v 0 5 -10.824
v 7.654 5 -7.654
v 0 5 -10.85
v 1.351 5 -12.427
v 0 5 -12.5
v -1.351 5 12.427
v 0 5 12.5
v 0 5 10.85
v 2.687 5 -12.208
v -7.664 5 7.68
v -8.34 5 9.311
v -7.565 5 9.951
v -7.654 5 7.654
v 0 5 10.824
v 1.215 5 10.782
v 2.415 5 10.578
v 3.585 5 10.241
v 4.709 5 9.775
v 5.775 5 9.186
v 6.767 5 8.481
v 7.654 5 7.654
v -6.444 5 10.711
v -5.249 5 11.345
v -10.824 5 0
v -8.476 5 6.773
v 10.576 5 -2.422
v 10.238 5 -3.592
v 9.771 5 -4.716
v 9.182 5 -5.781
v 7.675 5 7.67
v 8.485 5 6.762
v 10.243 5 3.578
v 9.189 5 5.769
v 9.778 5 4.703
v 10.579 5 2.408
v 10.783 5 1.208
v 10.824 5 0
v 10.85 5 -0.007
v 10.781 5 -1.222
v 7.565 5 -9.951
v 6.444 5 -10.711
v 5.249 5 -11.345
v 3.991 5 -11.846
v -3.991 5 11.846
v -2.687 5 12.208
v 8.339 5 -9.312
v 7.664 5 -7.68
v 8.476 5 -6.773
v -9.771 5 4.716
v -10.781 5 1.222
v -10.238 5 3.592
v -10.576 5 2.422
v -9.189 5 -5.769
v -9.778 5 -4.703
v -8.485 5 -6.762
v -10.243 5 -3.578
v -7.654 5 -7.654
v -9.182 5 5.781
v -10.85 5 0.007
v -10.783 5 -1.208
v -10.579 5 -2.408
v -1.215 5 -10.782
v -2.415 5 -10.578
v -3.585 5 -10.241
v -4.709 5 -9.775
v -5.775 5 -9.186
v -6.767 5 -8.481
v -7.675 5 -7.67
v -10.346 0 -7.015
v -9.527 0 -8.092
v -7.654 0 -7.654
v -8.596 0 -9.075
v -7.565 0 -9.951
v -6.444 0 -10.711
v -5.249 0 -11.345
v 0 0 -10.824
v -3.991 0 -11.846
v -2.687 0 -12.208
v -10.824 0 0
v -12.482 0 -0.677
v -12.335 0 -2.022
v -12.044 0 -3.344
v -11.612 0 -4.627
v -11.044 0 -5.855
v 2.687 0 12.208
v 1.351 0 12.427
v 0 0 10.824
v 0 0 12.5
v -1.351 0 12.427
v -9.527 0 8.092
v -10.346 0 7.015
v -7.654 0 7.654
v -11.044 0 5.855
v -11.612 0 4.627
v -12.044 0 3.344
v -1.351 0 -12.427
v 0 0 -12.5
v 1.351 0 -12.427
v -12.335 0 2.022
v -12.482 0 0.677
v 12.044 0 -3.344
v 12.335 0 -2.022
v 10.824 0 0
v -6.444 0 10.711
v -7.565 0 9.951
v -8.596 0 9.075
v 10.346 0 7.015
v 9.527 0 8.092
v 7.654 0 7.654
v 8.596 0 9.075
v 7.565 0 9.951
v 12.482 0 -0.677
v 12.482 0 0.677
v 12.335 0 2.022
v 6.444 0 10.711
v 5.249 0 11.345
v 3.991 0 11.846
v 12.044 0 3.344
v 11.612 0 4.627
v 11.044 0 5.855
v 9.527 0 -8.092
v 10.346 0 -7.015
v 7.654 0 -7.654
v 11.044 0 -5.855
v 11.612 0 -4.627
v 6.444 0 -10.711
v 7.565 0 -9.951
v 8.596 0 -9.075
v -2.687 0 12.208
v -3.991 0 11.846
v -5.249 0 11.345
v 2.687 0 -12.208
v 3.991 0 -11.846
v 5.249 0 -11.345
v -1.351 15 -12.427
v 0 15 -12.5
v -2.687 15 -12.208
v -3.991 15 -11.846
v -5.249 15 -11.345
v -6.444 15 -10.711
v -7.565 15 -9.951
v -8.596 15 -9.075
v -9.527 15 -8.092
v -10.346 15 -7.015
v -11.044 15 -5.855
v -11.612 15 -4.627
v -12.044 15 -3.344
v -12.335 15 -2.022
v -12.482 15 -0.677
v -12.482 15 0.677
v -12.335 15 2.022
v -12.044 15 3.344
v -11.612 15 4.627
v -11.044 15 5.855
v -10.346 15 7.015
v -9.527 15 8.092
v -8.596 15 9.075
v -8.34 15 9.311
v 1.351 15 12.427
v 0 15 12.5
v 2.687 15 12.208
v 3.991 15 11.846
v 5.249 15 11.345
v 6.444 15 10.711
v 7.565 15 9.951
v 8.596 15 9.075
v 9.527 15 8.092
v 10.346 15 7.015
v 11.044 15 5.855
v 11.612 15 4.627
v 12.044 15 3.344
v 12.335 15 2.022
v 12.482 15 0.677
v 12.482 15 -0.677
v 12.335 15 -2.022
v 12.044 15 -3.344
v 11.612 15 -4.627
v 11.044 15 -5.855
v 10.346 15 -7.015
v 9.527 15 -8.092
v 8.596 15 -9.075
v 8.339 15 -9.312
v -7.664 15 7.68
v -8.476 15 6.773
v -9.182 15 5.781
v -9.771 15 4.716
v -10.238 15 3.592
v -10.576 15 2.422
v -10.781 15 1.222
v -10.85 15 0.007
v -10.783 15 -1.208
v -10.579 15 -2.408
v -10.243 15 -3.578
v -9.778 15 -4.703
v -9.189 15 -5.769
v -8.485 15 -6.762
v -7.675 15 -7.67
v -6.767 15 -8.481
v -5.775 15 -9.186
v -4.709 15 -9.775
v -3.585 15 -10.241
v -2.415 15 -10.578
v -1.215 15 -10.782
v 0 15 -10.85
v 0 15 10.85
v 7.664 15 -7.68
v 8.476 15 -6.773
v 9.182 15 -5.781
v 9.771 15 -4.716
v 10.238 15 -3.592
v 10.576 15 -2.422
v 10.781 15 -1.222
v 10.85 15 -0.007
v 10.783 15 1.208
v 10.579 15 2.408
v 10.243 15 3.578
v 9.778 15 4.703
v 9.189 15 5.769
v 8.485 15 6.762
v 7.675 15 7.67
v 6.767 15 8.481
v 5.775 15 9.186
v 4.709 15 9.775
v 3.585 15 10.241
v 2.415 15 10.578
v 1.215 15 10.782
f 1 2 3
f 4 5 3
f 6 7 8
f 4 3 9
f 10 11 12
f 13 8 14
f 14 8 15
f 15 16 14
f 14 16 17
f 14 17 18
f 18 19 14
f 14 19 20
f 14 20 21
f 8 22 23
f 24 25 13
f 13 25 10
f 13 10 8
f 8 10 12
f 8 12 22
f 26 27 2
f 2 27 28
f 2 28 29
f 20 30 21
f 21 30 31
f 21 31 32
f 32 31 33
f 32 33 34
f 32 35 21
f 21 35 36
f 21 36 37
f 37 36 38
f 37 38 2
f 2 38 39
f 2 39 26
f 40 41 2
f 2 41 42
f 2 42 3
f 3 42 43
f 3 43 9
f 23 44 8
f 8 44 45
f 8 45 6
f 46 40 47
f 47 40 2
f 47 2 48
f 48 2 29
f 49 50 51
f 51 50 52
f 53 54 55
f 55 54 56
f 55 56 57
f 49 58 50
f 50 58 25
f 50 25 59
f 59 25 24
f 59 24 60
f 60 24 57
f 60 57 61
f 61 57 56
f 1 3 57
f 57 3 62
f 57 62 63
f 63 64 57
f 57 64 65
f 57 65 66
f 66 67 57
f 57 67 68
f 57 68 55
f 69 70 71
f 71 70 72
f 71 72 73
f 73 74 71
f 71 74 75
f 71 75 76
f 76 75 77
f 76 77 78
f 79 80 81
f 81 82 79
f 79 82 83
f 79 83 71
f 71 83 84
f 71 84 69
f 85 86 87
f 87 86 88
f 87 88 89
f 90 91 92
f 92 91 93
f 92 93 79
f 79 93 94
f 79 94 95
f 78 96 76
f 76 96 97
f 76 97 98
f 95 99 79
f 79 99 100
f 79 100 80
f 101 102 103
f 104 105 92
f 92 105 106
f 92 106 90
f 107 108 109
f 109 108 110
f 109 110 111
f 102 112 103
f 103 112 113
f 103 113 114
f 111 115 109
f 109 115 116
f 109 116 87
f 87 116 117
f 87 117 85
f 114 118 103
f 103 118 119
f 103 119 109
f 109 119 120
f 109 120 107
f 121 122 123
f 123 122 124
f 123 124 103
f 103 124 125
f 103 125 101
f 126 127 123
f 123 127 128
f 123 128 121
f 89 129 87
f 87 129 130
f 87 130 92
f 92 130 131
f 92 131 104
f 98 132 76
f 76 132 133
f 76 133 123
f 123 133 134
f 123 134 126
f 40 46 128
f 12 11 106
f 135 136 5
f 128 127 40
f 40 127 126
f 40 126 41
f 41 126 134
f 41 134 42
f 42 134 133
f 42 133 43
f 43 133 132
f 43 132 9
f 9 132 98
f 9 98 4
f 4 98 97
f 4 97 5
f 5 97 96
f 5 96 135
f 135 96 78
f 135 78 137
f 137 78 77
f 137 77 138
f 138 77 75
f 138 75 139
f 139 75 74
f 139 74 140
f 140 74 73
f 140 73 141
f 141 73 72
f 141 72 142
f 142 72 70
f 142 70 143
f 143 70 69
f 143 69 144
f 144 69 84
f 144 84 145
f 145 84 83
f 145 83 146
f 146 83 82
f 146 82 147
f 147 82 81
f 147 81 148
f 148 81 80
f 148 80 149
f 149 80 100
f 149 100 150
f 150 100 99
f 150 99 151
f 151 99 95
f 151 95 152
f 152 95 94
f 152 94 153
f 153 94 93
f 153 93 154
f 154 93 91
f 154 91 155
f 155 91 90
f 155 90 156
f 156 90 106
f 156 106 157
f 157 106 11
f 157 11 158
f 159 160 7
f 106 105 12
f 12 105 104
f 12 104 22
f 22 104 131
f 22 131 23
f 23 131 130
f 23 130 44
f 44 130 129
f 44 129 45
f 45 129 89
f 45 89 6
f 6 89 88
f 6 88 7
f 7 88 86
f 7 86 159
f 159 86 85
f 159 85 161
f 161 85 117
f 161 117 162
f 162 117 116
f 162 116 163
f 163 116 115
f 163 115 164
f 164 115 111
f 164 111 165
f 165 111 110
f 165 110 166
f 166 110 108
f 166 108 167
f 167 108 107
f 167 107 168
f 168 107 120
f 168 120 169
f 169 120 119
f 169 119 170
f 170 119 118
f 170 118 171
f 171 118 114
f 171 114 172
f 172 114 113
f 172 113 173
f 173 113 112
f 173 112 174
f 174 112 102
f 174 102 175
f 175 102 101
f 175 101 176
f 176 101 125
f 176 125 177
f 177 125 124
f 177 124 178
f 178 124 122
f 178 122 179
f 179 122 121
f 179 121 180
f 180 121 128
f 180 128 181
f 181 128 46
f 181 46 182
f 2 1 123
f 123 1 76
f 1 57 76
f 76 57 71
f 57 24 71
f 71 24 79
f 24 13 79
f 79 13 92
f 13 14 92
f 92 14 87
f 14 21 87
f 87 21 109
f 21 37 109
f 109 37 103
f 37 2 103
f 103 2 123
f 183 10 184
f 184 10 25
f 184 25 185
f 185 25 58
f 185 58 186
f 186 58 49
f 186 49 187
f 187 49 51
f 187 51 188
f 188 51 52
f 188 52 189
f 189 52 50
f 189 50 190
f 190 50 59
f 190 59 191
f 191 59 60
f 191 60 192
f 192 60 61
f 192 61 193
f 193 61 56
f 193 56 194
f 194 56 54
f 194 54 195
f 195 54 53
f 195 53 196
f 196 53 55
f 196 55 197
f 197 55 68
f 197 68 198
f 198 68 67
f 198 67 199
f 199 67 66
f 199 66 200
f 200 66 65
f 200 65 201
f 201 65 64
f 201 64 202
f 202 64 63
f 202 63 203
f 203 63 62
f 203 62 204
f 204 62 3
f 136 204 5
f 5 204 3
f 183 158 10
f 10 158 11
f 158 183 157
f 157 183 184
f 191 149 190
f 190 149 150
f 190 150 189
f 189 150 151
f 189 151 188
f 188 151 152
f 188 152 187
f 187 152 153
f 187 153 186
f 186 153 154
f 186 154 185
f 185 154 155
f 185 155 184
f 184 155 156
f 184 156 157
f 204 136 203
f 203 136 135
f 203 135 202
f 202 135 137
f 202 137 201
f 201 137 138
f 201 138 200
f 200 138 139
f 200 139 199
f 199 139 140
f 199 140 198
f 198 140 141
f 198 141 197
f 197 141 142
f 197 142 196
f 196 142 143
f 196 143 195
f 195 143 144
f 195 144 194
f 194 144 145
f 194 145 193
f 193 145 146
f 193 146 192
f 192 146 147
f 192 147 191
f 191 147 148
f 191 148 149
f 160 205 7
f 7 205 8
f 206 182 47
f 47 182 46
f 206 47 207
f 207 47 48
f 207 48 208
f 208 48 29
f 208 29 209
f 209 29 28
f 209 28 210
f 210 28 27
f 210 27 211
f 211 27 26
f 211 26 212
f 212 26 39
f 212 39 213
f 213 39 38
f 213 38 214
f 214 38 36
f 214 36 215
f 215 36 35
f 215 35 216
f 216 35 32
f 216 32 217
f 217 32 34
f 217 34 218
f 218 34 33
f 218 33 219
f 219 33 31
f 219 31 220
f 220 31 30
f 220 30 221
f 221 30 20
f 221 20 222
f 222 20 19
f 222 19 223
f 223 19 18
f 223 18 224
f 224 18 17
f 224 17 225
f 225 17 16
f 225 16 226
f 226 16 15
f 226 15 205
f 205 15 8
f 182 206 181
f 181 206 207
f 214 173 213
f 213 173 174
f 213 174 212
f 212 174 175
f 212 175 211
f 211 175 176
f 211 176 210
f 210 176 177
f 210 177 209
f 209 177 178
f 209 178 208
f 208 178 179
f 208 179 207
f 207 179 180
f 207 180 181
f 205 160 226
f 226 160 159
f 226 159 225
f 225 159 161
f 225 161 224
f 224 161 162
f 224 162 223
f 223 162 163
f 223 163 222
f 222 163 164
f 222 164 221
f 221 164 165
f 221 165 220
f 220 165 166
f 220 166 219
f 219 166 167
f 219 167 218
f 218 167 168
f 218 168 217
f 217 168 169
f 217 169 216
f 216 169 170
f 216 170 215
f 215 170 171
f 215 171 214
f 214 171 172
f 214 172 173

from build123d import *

# Parameters (mm, degrees)
SKETCH1_R           = 12.5
BOSS_EXTRUDE1_DEPTH = 5
BOSS_EXTRUDE3_DEPTH = 10


with BuildPart() as part:
    # Sketch1 → Boss-Extrude1 (new body)
    with BuildSketch(Plane(origin=(0, 0, 0), x_dir=(1, 0, 0), z_dir=(0, 1, 0))):
        with Locations(Location((0, 0, 0), (0, 0, 270))):
            Circle(SKETCH1_R)
        Polygon((10.823922003, 0), (7.653668647, 7.653668647), (0, 10.823922003), (-7.653668647, 7.653668647), (-10.823922003, 0), (-7.653668647, -7.653668647), (0, -10.823922003), (7.653668647, -7.653668647), align=None, mode=Mode.SUBTRACT)
    extrude(amount=BOSS_EXTRUDE1_DEPTH)

    # Sketch2 → Boss-Extrude3 (add)
    with BuildSketch(Plane(origin=(0, 5, 0), x_dir=(1, 0, 0), z_dir=(0, 1, 0))):
        with BuildLine():
            Line((-8.340109868, -9.310884351), (-7.664468281, -7.67974127))
            ThreePointArc((-7.664468281, -7.67974127), (-10.026158107, 4.147125946), (0, 10.85))
            Line((0, 10.85), (0, 12.5))
            ThreePointArc((0, 12.5), (-11.675531131, 4.464523805), (-8.340109868, -9.310884351))
        make_face()
        with BuildLine():
            ThreePointArc((10.85, 0), (7.672108576, -7.672108576), (0, -10.85))
            Line((0, -10.85), (0, -12.5))
            ThreePointArc((0, -12.5), (8.838834765, -8.838834765), (12.5, 0))
            ThreePointArc((12.5, 0), (11.412549003, 5.099384792), (8.339403959, 9.311516612))
            Line((8.339403959, 9.311516612), (7.664457508, 7.679752021))
            ThreePointArc((7.664457508, 7.679752021), (10.02202235, 4.157110537), (10.85, 0))
        make_face()
    extrude(amount=BOSS_EXTRUDE3_DEPTH)


solid = part.part
